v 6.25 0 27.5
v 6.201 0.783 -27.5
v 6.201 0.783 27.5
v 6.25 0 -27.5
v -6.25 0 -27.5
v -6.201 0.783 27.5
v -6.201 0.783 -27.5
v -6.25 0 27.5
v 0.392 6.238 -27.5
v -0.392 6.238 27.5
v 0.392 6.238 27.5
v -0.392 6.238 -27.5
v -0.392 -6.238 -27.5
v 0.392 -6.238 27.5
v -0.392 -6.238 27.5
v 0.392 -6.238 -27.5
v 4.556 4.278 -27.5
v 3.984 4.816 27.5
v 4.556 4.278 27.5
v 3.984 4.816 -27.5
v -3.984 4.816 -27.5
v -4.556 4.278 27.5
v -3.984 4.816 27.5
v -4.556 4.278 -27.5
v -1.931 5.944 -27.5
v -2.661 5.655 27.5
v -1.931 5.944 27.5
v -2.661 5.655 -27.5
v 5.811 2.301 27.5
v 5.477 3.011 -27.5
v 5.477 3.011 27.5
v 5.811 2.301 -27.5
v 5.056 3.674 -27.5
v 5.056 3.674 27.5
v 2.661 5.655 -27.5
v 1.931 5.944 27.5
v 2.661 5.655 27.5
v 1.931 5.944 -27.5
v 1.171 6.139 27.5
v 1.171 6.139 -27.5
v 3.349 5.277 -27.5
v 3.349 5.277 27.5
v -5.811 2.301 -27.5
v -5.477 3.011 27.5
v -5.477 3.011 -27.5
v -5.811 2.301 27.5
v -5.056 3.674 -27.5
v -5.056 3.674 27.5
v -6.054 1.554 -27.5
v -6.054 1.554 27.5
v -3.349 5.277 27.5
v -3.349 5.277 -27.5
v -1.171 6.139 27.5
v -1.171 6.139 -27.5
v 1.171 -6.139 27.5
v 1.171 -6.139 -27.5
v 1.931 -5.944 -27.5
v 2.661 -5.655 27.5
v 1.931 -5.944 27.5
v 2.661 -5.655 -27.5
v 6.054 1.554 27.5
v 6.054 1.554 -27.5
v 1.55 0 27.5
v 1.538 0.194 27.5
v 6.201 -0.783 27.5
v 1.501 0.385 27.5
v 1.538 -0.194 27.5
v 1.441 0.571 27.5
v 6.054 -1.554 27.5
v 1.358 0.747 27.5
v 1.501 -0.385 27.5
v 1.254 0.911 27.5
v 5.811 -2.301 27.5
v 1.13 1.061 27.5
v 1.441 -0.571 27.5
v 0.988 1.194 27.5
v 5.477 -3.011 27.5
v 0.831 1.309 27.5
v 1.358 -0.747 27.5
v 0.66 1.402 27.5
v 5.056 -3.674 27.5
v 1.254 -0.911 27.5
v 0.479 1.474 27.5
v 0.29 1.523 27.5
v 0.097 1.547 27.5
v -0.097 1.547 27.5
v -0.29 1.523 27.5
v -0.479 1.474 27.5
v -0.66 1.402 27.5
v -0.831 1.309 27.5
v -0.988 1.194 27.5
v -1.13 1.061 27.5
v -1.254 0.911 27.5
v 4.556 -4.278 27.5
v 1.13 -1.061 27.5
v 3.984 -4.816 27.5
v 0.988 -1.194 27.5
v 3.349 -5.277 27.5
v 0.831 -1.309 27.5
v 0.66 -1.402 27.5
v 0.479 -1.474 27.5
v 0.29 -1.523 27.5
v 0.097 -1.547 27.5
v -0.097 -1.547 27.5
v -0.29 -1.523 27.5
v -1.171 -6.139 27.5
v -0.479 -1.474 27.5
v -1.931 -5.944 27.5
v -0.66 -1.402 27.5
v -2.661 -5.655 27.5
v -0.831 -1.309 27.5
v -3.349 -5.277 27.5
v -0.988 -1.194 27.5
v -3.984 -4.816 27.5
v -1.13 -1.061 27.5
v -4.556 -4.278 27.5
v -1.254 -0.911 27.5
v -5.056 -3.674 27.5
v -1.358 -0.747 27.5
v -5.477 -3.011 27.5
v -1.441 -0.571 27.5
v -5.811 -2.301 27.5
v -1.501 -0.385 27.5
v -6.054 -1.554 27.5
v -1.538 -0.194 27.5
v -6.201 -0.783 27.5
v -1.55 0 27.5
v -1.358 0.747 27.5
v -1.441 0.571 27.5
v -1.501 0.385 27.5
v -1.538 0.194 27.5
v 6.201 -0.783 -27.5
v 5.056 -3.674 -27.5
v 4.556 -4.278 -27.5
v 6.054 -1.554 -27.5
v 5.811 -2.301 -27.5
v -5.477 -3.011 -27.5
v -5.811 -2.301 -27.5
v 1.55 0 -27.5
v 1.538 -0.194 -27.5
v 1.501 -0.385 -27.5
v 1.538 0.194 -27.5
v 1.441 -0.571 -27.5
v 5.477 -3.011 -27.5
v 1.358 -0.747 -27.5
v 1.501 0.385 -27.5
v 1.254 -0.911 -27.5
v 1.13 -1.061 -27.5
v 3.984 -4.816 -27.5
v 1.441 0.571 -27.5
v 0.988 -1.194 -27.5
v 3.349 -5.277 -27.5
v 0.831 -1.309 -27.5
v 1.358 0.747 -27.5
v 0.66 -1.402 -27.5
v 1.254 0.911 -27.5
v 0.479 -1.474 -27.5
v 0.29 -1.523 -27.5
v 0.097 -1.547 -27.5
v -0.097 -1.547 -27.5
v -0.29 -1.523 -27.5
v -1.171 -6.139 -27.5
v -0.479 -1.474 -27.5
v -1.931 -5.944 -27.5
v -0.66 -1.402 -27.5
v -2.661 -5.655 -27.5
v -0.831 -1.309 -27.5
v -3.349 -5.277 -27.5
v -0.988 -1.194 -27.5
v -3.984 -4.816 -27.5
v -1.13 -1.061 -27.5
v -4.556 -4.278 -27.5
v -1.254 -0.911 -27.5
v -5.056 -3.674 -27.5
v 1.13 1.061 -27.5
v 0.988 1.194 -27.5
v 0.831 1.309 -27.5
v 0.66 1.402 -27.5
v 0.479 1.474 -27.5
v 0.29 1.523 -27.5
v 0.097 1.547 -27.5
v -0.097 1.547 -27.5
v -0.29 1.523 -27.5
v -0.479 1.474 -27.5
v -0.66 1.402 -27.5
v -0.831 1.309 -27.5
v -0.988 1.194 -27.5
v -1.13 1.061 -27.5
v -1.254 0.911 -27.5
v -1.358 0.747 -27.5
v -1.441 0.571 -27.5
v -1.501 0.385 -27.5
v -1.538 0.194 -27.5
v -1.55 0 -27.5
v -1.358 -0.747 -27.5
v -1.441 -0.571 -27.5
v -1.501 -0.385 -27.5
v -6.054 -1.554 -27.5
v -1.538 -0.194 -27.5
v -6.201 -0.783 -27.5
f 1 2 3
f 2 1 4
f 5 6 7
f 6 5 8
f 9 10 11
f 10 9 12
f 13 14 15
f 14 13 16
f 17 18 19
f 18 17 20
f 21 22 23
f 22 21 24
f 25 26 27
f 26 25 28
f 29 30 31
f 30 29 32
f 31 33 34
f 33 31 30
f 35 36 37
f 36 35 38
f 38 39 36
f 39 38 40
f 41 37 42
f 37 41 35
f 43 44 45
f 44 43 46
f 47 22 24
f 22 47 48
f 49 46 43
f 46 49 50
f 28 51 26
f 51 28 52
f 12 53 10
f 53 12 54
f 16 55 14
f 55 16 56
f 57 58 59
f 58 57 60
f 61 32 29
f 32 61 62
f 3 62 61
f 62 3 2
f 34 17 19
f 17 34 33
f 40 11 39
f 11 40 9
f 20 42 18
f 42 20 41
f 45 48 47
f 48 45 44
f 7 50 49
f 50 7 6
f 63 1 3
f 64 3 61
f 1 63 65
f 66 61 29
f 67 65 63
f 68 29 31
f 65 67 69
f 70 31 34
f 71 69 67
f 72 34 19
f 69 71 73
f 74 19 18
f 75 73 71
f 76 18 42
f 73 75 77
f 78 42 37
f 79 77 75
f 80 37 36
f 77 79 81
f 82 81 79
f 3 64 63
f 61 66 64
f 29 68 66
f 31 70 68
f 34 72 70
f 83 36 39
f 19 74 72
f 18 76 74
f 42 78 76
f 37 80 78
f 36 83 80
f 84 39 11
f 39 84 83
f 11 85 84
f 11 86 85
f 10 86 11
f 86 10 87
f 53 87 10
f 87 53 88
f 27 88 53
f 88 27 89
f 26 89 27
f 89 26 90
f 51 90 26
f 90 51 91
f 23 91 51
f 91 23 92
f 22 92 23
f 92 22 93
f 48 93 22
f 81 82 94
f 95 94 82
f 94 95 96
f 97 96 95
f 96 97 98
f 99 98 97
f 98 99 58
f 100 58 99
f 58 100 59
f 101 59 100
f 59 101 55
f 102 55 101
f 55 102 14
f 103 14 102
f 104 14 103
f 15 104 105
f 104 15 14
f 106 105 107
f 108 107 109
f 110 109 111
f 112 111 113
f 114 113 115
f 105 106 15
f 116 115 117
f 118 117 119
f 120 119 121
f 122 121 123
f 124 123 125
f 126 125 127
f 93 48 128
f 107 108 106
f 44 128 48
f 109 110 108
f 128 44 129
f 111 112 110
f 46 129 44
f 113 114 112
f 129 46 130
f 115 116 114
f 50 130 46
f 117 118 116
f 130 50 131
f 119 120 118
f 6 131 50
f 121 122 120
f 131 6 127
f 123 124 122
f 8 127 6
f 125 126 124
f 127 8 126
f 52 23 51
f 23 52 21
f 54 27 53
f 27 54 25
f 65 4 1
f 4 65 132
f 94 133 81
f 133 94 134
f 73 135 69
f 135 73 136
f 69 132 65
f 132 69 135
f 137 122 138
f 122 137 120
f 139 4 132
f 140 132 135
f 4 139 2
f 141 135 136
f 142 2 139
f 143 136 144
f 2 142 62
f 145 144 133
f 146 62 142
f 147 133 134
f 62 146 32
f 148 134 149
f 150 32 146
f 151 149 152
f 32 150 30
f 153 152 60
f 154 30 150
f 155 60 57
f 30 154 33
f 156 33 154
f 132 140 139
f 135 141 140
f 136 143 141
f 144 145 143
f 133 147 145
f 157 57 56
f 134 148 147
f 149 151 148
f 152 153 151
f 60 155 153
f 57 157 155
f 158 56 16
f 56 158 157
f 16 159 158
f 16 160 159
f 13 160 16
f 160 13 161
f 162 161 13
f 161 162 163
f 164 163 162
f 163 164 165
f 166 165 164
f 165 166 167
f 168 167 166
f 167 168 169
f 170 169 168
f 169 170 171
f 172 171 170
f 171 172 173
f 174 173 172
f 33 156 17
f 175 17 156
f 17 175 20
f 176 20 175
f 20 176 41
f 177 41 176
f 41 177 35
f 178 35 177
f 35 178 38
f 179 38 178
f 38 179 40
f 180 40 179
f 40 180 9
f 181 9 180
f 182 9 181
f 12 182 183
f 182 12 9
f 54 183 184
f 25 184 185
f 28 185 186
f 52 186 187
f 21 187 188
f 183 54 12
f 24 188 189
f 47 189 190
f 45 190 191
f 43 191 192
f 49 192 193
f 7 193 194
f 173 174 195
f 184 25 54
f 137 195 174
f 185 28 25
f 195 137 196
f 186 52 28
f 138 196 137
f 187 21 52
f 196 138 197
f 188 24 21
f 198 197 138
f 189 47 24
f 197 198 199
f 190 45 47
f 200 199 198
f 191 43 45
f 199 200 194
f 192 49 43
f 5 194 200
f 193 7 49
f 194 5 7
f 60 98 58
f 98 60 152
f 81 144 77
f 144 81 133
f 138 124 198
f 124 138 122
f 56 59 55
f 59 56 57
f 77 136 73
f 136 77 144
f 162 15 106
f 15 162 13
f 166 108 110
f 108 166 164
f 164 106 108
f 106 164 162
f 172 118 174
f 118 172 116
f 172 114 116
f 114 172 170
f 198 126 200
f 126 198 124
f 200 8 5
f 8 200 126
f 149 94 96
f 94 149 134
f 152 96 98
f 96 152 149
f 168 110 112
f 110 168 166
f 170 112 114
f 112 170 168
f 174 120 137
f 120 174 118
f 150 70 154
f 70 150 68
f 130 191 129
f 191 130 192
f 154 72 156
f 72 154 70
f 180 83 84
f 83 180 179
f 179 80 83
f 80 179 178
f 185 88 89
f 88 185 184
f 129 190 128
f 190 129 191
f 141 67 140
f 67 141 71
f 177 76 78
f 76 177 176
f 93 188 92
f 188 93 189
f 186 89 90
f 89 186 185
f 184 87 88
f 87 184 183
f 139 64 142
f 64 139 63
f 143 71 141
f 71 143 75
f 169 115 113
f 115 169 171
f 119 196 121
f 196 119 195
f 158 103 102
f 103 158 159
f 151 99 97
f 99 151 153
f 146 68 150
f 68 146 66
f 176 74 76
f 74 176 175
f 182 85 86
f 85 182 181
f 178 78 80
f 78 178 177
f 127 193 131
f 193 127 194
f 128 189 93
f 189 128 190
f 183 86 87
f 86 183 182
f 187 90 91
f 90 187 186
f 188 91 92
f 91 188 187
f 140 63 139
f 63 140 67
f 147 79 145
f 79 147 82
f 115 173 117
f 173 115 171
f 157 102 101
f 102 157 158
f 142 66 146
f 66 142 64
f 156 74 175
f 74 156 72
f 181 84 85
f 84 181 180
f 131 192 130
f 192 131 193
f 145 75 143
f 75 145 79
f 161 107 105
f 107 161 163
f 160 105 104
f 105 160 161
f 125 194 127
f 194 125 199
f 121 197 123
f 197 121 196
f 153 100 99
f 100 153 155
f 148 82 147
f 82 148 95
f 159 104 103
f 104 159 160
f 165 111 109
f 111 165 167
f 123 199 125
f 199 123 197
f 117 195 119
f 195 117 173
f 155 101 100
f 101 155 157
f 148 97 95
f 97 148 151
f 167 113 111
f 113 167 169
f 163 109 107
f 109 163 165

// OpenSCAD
$fn = 50;


difference() {
	union() {
		translate(v = [0, 0, -27.5000000000]) {
			cylinder(h = 55, r = 6.2500000000);
		}
	}
	union() {
		translate(v = [0, 0, -100.0000000000]) {
			cylinder(h = 200, r = 1.5500000000);
		}
	}
}
